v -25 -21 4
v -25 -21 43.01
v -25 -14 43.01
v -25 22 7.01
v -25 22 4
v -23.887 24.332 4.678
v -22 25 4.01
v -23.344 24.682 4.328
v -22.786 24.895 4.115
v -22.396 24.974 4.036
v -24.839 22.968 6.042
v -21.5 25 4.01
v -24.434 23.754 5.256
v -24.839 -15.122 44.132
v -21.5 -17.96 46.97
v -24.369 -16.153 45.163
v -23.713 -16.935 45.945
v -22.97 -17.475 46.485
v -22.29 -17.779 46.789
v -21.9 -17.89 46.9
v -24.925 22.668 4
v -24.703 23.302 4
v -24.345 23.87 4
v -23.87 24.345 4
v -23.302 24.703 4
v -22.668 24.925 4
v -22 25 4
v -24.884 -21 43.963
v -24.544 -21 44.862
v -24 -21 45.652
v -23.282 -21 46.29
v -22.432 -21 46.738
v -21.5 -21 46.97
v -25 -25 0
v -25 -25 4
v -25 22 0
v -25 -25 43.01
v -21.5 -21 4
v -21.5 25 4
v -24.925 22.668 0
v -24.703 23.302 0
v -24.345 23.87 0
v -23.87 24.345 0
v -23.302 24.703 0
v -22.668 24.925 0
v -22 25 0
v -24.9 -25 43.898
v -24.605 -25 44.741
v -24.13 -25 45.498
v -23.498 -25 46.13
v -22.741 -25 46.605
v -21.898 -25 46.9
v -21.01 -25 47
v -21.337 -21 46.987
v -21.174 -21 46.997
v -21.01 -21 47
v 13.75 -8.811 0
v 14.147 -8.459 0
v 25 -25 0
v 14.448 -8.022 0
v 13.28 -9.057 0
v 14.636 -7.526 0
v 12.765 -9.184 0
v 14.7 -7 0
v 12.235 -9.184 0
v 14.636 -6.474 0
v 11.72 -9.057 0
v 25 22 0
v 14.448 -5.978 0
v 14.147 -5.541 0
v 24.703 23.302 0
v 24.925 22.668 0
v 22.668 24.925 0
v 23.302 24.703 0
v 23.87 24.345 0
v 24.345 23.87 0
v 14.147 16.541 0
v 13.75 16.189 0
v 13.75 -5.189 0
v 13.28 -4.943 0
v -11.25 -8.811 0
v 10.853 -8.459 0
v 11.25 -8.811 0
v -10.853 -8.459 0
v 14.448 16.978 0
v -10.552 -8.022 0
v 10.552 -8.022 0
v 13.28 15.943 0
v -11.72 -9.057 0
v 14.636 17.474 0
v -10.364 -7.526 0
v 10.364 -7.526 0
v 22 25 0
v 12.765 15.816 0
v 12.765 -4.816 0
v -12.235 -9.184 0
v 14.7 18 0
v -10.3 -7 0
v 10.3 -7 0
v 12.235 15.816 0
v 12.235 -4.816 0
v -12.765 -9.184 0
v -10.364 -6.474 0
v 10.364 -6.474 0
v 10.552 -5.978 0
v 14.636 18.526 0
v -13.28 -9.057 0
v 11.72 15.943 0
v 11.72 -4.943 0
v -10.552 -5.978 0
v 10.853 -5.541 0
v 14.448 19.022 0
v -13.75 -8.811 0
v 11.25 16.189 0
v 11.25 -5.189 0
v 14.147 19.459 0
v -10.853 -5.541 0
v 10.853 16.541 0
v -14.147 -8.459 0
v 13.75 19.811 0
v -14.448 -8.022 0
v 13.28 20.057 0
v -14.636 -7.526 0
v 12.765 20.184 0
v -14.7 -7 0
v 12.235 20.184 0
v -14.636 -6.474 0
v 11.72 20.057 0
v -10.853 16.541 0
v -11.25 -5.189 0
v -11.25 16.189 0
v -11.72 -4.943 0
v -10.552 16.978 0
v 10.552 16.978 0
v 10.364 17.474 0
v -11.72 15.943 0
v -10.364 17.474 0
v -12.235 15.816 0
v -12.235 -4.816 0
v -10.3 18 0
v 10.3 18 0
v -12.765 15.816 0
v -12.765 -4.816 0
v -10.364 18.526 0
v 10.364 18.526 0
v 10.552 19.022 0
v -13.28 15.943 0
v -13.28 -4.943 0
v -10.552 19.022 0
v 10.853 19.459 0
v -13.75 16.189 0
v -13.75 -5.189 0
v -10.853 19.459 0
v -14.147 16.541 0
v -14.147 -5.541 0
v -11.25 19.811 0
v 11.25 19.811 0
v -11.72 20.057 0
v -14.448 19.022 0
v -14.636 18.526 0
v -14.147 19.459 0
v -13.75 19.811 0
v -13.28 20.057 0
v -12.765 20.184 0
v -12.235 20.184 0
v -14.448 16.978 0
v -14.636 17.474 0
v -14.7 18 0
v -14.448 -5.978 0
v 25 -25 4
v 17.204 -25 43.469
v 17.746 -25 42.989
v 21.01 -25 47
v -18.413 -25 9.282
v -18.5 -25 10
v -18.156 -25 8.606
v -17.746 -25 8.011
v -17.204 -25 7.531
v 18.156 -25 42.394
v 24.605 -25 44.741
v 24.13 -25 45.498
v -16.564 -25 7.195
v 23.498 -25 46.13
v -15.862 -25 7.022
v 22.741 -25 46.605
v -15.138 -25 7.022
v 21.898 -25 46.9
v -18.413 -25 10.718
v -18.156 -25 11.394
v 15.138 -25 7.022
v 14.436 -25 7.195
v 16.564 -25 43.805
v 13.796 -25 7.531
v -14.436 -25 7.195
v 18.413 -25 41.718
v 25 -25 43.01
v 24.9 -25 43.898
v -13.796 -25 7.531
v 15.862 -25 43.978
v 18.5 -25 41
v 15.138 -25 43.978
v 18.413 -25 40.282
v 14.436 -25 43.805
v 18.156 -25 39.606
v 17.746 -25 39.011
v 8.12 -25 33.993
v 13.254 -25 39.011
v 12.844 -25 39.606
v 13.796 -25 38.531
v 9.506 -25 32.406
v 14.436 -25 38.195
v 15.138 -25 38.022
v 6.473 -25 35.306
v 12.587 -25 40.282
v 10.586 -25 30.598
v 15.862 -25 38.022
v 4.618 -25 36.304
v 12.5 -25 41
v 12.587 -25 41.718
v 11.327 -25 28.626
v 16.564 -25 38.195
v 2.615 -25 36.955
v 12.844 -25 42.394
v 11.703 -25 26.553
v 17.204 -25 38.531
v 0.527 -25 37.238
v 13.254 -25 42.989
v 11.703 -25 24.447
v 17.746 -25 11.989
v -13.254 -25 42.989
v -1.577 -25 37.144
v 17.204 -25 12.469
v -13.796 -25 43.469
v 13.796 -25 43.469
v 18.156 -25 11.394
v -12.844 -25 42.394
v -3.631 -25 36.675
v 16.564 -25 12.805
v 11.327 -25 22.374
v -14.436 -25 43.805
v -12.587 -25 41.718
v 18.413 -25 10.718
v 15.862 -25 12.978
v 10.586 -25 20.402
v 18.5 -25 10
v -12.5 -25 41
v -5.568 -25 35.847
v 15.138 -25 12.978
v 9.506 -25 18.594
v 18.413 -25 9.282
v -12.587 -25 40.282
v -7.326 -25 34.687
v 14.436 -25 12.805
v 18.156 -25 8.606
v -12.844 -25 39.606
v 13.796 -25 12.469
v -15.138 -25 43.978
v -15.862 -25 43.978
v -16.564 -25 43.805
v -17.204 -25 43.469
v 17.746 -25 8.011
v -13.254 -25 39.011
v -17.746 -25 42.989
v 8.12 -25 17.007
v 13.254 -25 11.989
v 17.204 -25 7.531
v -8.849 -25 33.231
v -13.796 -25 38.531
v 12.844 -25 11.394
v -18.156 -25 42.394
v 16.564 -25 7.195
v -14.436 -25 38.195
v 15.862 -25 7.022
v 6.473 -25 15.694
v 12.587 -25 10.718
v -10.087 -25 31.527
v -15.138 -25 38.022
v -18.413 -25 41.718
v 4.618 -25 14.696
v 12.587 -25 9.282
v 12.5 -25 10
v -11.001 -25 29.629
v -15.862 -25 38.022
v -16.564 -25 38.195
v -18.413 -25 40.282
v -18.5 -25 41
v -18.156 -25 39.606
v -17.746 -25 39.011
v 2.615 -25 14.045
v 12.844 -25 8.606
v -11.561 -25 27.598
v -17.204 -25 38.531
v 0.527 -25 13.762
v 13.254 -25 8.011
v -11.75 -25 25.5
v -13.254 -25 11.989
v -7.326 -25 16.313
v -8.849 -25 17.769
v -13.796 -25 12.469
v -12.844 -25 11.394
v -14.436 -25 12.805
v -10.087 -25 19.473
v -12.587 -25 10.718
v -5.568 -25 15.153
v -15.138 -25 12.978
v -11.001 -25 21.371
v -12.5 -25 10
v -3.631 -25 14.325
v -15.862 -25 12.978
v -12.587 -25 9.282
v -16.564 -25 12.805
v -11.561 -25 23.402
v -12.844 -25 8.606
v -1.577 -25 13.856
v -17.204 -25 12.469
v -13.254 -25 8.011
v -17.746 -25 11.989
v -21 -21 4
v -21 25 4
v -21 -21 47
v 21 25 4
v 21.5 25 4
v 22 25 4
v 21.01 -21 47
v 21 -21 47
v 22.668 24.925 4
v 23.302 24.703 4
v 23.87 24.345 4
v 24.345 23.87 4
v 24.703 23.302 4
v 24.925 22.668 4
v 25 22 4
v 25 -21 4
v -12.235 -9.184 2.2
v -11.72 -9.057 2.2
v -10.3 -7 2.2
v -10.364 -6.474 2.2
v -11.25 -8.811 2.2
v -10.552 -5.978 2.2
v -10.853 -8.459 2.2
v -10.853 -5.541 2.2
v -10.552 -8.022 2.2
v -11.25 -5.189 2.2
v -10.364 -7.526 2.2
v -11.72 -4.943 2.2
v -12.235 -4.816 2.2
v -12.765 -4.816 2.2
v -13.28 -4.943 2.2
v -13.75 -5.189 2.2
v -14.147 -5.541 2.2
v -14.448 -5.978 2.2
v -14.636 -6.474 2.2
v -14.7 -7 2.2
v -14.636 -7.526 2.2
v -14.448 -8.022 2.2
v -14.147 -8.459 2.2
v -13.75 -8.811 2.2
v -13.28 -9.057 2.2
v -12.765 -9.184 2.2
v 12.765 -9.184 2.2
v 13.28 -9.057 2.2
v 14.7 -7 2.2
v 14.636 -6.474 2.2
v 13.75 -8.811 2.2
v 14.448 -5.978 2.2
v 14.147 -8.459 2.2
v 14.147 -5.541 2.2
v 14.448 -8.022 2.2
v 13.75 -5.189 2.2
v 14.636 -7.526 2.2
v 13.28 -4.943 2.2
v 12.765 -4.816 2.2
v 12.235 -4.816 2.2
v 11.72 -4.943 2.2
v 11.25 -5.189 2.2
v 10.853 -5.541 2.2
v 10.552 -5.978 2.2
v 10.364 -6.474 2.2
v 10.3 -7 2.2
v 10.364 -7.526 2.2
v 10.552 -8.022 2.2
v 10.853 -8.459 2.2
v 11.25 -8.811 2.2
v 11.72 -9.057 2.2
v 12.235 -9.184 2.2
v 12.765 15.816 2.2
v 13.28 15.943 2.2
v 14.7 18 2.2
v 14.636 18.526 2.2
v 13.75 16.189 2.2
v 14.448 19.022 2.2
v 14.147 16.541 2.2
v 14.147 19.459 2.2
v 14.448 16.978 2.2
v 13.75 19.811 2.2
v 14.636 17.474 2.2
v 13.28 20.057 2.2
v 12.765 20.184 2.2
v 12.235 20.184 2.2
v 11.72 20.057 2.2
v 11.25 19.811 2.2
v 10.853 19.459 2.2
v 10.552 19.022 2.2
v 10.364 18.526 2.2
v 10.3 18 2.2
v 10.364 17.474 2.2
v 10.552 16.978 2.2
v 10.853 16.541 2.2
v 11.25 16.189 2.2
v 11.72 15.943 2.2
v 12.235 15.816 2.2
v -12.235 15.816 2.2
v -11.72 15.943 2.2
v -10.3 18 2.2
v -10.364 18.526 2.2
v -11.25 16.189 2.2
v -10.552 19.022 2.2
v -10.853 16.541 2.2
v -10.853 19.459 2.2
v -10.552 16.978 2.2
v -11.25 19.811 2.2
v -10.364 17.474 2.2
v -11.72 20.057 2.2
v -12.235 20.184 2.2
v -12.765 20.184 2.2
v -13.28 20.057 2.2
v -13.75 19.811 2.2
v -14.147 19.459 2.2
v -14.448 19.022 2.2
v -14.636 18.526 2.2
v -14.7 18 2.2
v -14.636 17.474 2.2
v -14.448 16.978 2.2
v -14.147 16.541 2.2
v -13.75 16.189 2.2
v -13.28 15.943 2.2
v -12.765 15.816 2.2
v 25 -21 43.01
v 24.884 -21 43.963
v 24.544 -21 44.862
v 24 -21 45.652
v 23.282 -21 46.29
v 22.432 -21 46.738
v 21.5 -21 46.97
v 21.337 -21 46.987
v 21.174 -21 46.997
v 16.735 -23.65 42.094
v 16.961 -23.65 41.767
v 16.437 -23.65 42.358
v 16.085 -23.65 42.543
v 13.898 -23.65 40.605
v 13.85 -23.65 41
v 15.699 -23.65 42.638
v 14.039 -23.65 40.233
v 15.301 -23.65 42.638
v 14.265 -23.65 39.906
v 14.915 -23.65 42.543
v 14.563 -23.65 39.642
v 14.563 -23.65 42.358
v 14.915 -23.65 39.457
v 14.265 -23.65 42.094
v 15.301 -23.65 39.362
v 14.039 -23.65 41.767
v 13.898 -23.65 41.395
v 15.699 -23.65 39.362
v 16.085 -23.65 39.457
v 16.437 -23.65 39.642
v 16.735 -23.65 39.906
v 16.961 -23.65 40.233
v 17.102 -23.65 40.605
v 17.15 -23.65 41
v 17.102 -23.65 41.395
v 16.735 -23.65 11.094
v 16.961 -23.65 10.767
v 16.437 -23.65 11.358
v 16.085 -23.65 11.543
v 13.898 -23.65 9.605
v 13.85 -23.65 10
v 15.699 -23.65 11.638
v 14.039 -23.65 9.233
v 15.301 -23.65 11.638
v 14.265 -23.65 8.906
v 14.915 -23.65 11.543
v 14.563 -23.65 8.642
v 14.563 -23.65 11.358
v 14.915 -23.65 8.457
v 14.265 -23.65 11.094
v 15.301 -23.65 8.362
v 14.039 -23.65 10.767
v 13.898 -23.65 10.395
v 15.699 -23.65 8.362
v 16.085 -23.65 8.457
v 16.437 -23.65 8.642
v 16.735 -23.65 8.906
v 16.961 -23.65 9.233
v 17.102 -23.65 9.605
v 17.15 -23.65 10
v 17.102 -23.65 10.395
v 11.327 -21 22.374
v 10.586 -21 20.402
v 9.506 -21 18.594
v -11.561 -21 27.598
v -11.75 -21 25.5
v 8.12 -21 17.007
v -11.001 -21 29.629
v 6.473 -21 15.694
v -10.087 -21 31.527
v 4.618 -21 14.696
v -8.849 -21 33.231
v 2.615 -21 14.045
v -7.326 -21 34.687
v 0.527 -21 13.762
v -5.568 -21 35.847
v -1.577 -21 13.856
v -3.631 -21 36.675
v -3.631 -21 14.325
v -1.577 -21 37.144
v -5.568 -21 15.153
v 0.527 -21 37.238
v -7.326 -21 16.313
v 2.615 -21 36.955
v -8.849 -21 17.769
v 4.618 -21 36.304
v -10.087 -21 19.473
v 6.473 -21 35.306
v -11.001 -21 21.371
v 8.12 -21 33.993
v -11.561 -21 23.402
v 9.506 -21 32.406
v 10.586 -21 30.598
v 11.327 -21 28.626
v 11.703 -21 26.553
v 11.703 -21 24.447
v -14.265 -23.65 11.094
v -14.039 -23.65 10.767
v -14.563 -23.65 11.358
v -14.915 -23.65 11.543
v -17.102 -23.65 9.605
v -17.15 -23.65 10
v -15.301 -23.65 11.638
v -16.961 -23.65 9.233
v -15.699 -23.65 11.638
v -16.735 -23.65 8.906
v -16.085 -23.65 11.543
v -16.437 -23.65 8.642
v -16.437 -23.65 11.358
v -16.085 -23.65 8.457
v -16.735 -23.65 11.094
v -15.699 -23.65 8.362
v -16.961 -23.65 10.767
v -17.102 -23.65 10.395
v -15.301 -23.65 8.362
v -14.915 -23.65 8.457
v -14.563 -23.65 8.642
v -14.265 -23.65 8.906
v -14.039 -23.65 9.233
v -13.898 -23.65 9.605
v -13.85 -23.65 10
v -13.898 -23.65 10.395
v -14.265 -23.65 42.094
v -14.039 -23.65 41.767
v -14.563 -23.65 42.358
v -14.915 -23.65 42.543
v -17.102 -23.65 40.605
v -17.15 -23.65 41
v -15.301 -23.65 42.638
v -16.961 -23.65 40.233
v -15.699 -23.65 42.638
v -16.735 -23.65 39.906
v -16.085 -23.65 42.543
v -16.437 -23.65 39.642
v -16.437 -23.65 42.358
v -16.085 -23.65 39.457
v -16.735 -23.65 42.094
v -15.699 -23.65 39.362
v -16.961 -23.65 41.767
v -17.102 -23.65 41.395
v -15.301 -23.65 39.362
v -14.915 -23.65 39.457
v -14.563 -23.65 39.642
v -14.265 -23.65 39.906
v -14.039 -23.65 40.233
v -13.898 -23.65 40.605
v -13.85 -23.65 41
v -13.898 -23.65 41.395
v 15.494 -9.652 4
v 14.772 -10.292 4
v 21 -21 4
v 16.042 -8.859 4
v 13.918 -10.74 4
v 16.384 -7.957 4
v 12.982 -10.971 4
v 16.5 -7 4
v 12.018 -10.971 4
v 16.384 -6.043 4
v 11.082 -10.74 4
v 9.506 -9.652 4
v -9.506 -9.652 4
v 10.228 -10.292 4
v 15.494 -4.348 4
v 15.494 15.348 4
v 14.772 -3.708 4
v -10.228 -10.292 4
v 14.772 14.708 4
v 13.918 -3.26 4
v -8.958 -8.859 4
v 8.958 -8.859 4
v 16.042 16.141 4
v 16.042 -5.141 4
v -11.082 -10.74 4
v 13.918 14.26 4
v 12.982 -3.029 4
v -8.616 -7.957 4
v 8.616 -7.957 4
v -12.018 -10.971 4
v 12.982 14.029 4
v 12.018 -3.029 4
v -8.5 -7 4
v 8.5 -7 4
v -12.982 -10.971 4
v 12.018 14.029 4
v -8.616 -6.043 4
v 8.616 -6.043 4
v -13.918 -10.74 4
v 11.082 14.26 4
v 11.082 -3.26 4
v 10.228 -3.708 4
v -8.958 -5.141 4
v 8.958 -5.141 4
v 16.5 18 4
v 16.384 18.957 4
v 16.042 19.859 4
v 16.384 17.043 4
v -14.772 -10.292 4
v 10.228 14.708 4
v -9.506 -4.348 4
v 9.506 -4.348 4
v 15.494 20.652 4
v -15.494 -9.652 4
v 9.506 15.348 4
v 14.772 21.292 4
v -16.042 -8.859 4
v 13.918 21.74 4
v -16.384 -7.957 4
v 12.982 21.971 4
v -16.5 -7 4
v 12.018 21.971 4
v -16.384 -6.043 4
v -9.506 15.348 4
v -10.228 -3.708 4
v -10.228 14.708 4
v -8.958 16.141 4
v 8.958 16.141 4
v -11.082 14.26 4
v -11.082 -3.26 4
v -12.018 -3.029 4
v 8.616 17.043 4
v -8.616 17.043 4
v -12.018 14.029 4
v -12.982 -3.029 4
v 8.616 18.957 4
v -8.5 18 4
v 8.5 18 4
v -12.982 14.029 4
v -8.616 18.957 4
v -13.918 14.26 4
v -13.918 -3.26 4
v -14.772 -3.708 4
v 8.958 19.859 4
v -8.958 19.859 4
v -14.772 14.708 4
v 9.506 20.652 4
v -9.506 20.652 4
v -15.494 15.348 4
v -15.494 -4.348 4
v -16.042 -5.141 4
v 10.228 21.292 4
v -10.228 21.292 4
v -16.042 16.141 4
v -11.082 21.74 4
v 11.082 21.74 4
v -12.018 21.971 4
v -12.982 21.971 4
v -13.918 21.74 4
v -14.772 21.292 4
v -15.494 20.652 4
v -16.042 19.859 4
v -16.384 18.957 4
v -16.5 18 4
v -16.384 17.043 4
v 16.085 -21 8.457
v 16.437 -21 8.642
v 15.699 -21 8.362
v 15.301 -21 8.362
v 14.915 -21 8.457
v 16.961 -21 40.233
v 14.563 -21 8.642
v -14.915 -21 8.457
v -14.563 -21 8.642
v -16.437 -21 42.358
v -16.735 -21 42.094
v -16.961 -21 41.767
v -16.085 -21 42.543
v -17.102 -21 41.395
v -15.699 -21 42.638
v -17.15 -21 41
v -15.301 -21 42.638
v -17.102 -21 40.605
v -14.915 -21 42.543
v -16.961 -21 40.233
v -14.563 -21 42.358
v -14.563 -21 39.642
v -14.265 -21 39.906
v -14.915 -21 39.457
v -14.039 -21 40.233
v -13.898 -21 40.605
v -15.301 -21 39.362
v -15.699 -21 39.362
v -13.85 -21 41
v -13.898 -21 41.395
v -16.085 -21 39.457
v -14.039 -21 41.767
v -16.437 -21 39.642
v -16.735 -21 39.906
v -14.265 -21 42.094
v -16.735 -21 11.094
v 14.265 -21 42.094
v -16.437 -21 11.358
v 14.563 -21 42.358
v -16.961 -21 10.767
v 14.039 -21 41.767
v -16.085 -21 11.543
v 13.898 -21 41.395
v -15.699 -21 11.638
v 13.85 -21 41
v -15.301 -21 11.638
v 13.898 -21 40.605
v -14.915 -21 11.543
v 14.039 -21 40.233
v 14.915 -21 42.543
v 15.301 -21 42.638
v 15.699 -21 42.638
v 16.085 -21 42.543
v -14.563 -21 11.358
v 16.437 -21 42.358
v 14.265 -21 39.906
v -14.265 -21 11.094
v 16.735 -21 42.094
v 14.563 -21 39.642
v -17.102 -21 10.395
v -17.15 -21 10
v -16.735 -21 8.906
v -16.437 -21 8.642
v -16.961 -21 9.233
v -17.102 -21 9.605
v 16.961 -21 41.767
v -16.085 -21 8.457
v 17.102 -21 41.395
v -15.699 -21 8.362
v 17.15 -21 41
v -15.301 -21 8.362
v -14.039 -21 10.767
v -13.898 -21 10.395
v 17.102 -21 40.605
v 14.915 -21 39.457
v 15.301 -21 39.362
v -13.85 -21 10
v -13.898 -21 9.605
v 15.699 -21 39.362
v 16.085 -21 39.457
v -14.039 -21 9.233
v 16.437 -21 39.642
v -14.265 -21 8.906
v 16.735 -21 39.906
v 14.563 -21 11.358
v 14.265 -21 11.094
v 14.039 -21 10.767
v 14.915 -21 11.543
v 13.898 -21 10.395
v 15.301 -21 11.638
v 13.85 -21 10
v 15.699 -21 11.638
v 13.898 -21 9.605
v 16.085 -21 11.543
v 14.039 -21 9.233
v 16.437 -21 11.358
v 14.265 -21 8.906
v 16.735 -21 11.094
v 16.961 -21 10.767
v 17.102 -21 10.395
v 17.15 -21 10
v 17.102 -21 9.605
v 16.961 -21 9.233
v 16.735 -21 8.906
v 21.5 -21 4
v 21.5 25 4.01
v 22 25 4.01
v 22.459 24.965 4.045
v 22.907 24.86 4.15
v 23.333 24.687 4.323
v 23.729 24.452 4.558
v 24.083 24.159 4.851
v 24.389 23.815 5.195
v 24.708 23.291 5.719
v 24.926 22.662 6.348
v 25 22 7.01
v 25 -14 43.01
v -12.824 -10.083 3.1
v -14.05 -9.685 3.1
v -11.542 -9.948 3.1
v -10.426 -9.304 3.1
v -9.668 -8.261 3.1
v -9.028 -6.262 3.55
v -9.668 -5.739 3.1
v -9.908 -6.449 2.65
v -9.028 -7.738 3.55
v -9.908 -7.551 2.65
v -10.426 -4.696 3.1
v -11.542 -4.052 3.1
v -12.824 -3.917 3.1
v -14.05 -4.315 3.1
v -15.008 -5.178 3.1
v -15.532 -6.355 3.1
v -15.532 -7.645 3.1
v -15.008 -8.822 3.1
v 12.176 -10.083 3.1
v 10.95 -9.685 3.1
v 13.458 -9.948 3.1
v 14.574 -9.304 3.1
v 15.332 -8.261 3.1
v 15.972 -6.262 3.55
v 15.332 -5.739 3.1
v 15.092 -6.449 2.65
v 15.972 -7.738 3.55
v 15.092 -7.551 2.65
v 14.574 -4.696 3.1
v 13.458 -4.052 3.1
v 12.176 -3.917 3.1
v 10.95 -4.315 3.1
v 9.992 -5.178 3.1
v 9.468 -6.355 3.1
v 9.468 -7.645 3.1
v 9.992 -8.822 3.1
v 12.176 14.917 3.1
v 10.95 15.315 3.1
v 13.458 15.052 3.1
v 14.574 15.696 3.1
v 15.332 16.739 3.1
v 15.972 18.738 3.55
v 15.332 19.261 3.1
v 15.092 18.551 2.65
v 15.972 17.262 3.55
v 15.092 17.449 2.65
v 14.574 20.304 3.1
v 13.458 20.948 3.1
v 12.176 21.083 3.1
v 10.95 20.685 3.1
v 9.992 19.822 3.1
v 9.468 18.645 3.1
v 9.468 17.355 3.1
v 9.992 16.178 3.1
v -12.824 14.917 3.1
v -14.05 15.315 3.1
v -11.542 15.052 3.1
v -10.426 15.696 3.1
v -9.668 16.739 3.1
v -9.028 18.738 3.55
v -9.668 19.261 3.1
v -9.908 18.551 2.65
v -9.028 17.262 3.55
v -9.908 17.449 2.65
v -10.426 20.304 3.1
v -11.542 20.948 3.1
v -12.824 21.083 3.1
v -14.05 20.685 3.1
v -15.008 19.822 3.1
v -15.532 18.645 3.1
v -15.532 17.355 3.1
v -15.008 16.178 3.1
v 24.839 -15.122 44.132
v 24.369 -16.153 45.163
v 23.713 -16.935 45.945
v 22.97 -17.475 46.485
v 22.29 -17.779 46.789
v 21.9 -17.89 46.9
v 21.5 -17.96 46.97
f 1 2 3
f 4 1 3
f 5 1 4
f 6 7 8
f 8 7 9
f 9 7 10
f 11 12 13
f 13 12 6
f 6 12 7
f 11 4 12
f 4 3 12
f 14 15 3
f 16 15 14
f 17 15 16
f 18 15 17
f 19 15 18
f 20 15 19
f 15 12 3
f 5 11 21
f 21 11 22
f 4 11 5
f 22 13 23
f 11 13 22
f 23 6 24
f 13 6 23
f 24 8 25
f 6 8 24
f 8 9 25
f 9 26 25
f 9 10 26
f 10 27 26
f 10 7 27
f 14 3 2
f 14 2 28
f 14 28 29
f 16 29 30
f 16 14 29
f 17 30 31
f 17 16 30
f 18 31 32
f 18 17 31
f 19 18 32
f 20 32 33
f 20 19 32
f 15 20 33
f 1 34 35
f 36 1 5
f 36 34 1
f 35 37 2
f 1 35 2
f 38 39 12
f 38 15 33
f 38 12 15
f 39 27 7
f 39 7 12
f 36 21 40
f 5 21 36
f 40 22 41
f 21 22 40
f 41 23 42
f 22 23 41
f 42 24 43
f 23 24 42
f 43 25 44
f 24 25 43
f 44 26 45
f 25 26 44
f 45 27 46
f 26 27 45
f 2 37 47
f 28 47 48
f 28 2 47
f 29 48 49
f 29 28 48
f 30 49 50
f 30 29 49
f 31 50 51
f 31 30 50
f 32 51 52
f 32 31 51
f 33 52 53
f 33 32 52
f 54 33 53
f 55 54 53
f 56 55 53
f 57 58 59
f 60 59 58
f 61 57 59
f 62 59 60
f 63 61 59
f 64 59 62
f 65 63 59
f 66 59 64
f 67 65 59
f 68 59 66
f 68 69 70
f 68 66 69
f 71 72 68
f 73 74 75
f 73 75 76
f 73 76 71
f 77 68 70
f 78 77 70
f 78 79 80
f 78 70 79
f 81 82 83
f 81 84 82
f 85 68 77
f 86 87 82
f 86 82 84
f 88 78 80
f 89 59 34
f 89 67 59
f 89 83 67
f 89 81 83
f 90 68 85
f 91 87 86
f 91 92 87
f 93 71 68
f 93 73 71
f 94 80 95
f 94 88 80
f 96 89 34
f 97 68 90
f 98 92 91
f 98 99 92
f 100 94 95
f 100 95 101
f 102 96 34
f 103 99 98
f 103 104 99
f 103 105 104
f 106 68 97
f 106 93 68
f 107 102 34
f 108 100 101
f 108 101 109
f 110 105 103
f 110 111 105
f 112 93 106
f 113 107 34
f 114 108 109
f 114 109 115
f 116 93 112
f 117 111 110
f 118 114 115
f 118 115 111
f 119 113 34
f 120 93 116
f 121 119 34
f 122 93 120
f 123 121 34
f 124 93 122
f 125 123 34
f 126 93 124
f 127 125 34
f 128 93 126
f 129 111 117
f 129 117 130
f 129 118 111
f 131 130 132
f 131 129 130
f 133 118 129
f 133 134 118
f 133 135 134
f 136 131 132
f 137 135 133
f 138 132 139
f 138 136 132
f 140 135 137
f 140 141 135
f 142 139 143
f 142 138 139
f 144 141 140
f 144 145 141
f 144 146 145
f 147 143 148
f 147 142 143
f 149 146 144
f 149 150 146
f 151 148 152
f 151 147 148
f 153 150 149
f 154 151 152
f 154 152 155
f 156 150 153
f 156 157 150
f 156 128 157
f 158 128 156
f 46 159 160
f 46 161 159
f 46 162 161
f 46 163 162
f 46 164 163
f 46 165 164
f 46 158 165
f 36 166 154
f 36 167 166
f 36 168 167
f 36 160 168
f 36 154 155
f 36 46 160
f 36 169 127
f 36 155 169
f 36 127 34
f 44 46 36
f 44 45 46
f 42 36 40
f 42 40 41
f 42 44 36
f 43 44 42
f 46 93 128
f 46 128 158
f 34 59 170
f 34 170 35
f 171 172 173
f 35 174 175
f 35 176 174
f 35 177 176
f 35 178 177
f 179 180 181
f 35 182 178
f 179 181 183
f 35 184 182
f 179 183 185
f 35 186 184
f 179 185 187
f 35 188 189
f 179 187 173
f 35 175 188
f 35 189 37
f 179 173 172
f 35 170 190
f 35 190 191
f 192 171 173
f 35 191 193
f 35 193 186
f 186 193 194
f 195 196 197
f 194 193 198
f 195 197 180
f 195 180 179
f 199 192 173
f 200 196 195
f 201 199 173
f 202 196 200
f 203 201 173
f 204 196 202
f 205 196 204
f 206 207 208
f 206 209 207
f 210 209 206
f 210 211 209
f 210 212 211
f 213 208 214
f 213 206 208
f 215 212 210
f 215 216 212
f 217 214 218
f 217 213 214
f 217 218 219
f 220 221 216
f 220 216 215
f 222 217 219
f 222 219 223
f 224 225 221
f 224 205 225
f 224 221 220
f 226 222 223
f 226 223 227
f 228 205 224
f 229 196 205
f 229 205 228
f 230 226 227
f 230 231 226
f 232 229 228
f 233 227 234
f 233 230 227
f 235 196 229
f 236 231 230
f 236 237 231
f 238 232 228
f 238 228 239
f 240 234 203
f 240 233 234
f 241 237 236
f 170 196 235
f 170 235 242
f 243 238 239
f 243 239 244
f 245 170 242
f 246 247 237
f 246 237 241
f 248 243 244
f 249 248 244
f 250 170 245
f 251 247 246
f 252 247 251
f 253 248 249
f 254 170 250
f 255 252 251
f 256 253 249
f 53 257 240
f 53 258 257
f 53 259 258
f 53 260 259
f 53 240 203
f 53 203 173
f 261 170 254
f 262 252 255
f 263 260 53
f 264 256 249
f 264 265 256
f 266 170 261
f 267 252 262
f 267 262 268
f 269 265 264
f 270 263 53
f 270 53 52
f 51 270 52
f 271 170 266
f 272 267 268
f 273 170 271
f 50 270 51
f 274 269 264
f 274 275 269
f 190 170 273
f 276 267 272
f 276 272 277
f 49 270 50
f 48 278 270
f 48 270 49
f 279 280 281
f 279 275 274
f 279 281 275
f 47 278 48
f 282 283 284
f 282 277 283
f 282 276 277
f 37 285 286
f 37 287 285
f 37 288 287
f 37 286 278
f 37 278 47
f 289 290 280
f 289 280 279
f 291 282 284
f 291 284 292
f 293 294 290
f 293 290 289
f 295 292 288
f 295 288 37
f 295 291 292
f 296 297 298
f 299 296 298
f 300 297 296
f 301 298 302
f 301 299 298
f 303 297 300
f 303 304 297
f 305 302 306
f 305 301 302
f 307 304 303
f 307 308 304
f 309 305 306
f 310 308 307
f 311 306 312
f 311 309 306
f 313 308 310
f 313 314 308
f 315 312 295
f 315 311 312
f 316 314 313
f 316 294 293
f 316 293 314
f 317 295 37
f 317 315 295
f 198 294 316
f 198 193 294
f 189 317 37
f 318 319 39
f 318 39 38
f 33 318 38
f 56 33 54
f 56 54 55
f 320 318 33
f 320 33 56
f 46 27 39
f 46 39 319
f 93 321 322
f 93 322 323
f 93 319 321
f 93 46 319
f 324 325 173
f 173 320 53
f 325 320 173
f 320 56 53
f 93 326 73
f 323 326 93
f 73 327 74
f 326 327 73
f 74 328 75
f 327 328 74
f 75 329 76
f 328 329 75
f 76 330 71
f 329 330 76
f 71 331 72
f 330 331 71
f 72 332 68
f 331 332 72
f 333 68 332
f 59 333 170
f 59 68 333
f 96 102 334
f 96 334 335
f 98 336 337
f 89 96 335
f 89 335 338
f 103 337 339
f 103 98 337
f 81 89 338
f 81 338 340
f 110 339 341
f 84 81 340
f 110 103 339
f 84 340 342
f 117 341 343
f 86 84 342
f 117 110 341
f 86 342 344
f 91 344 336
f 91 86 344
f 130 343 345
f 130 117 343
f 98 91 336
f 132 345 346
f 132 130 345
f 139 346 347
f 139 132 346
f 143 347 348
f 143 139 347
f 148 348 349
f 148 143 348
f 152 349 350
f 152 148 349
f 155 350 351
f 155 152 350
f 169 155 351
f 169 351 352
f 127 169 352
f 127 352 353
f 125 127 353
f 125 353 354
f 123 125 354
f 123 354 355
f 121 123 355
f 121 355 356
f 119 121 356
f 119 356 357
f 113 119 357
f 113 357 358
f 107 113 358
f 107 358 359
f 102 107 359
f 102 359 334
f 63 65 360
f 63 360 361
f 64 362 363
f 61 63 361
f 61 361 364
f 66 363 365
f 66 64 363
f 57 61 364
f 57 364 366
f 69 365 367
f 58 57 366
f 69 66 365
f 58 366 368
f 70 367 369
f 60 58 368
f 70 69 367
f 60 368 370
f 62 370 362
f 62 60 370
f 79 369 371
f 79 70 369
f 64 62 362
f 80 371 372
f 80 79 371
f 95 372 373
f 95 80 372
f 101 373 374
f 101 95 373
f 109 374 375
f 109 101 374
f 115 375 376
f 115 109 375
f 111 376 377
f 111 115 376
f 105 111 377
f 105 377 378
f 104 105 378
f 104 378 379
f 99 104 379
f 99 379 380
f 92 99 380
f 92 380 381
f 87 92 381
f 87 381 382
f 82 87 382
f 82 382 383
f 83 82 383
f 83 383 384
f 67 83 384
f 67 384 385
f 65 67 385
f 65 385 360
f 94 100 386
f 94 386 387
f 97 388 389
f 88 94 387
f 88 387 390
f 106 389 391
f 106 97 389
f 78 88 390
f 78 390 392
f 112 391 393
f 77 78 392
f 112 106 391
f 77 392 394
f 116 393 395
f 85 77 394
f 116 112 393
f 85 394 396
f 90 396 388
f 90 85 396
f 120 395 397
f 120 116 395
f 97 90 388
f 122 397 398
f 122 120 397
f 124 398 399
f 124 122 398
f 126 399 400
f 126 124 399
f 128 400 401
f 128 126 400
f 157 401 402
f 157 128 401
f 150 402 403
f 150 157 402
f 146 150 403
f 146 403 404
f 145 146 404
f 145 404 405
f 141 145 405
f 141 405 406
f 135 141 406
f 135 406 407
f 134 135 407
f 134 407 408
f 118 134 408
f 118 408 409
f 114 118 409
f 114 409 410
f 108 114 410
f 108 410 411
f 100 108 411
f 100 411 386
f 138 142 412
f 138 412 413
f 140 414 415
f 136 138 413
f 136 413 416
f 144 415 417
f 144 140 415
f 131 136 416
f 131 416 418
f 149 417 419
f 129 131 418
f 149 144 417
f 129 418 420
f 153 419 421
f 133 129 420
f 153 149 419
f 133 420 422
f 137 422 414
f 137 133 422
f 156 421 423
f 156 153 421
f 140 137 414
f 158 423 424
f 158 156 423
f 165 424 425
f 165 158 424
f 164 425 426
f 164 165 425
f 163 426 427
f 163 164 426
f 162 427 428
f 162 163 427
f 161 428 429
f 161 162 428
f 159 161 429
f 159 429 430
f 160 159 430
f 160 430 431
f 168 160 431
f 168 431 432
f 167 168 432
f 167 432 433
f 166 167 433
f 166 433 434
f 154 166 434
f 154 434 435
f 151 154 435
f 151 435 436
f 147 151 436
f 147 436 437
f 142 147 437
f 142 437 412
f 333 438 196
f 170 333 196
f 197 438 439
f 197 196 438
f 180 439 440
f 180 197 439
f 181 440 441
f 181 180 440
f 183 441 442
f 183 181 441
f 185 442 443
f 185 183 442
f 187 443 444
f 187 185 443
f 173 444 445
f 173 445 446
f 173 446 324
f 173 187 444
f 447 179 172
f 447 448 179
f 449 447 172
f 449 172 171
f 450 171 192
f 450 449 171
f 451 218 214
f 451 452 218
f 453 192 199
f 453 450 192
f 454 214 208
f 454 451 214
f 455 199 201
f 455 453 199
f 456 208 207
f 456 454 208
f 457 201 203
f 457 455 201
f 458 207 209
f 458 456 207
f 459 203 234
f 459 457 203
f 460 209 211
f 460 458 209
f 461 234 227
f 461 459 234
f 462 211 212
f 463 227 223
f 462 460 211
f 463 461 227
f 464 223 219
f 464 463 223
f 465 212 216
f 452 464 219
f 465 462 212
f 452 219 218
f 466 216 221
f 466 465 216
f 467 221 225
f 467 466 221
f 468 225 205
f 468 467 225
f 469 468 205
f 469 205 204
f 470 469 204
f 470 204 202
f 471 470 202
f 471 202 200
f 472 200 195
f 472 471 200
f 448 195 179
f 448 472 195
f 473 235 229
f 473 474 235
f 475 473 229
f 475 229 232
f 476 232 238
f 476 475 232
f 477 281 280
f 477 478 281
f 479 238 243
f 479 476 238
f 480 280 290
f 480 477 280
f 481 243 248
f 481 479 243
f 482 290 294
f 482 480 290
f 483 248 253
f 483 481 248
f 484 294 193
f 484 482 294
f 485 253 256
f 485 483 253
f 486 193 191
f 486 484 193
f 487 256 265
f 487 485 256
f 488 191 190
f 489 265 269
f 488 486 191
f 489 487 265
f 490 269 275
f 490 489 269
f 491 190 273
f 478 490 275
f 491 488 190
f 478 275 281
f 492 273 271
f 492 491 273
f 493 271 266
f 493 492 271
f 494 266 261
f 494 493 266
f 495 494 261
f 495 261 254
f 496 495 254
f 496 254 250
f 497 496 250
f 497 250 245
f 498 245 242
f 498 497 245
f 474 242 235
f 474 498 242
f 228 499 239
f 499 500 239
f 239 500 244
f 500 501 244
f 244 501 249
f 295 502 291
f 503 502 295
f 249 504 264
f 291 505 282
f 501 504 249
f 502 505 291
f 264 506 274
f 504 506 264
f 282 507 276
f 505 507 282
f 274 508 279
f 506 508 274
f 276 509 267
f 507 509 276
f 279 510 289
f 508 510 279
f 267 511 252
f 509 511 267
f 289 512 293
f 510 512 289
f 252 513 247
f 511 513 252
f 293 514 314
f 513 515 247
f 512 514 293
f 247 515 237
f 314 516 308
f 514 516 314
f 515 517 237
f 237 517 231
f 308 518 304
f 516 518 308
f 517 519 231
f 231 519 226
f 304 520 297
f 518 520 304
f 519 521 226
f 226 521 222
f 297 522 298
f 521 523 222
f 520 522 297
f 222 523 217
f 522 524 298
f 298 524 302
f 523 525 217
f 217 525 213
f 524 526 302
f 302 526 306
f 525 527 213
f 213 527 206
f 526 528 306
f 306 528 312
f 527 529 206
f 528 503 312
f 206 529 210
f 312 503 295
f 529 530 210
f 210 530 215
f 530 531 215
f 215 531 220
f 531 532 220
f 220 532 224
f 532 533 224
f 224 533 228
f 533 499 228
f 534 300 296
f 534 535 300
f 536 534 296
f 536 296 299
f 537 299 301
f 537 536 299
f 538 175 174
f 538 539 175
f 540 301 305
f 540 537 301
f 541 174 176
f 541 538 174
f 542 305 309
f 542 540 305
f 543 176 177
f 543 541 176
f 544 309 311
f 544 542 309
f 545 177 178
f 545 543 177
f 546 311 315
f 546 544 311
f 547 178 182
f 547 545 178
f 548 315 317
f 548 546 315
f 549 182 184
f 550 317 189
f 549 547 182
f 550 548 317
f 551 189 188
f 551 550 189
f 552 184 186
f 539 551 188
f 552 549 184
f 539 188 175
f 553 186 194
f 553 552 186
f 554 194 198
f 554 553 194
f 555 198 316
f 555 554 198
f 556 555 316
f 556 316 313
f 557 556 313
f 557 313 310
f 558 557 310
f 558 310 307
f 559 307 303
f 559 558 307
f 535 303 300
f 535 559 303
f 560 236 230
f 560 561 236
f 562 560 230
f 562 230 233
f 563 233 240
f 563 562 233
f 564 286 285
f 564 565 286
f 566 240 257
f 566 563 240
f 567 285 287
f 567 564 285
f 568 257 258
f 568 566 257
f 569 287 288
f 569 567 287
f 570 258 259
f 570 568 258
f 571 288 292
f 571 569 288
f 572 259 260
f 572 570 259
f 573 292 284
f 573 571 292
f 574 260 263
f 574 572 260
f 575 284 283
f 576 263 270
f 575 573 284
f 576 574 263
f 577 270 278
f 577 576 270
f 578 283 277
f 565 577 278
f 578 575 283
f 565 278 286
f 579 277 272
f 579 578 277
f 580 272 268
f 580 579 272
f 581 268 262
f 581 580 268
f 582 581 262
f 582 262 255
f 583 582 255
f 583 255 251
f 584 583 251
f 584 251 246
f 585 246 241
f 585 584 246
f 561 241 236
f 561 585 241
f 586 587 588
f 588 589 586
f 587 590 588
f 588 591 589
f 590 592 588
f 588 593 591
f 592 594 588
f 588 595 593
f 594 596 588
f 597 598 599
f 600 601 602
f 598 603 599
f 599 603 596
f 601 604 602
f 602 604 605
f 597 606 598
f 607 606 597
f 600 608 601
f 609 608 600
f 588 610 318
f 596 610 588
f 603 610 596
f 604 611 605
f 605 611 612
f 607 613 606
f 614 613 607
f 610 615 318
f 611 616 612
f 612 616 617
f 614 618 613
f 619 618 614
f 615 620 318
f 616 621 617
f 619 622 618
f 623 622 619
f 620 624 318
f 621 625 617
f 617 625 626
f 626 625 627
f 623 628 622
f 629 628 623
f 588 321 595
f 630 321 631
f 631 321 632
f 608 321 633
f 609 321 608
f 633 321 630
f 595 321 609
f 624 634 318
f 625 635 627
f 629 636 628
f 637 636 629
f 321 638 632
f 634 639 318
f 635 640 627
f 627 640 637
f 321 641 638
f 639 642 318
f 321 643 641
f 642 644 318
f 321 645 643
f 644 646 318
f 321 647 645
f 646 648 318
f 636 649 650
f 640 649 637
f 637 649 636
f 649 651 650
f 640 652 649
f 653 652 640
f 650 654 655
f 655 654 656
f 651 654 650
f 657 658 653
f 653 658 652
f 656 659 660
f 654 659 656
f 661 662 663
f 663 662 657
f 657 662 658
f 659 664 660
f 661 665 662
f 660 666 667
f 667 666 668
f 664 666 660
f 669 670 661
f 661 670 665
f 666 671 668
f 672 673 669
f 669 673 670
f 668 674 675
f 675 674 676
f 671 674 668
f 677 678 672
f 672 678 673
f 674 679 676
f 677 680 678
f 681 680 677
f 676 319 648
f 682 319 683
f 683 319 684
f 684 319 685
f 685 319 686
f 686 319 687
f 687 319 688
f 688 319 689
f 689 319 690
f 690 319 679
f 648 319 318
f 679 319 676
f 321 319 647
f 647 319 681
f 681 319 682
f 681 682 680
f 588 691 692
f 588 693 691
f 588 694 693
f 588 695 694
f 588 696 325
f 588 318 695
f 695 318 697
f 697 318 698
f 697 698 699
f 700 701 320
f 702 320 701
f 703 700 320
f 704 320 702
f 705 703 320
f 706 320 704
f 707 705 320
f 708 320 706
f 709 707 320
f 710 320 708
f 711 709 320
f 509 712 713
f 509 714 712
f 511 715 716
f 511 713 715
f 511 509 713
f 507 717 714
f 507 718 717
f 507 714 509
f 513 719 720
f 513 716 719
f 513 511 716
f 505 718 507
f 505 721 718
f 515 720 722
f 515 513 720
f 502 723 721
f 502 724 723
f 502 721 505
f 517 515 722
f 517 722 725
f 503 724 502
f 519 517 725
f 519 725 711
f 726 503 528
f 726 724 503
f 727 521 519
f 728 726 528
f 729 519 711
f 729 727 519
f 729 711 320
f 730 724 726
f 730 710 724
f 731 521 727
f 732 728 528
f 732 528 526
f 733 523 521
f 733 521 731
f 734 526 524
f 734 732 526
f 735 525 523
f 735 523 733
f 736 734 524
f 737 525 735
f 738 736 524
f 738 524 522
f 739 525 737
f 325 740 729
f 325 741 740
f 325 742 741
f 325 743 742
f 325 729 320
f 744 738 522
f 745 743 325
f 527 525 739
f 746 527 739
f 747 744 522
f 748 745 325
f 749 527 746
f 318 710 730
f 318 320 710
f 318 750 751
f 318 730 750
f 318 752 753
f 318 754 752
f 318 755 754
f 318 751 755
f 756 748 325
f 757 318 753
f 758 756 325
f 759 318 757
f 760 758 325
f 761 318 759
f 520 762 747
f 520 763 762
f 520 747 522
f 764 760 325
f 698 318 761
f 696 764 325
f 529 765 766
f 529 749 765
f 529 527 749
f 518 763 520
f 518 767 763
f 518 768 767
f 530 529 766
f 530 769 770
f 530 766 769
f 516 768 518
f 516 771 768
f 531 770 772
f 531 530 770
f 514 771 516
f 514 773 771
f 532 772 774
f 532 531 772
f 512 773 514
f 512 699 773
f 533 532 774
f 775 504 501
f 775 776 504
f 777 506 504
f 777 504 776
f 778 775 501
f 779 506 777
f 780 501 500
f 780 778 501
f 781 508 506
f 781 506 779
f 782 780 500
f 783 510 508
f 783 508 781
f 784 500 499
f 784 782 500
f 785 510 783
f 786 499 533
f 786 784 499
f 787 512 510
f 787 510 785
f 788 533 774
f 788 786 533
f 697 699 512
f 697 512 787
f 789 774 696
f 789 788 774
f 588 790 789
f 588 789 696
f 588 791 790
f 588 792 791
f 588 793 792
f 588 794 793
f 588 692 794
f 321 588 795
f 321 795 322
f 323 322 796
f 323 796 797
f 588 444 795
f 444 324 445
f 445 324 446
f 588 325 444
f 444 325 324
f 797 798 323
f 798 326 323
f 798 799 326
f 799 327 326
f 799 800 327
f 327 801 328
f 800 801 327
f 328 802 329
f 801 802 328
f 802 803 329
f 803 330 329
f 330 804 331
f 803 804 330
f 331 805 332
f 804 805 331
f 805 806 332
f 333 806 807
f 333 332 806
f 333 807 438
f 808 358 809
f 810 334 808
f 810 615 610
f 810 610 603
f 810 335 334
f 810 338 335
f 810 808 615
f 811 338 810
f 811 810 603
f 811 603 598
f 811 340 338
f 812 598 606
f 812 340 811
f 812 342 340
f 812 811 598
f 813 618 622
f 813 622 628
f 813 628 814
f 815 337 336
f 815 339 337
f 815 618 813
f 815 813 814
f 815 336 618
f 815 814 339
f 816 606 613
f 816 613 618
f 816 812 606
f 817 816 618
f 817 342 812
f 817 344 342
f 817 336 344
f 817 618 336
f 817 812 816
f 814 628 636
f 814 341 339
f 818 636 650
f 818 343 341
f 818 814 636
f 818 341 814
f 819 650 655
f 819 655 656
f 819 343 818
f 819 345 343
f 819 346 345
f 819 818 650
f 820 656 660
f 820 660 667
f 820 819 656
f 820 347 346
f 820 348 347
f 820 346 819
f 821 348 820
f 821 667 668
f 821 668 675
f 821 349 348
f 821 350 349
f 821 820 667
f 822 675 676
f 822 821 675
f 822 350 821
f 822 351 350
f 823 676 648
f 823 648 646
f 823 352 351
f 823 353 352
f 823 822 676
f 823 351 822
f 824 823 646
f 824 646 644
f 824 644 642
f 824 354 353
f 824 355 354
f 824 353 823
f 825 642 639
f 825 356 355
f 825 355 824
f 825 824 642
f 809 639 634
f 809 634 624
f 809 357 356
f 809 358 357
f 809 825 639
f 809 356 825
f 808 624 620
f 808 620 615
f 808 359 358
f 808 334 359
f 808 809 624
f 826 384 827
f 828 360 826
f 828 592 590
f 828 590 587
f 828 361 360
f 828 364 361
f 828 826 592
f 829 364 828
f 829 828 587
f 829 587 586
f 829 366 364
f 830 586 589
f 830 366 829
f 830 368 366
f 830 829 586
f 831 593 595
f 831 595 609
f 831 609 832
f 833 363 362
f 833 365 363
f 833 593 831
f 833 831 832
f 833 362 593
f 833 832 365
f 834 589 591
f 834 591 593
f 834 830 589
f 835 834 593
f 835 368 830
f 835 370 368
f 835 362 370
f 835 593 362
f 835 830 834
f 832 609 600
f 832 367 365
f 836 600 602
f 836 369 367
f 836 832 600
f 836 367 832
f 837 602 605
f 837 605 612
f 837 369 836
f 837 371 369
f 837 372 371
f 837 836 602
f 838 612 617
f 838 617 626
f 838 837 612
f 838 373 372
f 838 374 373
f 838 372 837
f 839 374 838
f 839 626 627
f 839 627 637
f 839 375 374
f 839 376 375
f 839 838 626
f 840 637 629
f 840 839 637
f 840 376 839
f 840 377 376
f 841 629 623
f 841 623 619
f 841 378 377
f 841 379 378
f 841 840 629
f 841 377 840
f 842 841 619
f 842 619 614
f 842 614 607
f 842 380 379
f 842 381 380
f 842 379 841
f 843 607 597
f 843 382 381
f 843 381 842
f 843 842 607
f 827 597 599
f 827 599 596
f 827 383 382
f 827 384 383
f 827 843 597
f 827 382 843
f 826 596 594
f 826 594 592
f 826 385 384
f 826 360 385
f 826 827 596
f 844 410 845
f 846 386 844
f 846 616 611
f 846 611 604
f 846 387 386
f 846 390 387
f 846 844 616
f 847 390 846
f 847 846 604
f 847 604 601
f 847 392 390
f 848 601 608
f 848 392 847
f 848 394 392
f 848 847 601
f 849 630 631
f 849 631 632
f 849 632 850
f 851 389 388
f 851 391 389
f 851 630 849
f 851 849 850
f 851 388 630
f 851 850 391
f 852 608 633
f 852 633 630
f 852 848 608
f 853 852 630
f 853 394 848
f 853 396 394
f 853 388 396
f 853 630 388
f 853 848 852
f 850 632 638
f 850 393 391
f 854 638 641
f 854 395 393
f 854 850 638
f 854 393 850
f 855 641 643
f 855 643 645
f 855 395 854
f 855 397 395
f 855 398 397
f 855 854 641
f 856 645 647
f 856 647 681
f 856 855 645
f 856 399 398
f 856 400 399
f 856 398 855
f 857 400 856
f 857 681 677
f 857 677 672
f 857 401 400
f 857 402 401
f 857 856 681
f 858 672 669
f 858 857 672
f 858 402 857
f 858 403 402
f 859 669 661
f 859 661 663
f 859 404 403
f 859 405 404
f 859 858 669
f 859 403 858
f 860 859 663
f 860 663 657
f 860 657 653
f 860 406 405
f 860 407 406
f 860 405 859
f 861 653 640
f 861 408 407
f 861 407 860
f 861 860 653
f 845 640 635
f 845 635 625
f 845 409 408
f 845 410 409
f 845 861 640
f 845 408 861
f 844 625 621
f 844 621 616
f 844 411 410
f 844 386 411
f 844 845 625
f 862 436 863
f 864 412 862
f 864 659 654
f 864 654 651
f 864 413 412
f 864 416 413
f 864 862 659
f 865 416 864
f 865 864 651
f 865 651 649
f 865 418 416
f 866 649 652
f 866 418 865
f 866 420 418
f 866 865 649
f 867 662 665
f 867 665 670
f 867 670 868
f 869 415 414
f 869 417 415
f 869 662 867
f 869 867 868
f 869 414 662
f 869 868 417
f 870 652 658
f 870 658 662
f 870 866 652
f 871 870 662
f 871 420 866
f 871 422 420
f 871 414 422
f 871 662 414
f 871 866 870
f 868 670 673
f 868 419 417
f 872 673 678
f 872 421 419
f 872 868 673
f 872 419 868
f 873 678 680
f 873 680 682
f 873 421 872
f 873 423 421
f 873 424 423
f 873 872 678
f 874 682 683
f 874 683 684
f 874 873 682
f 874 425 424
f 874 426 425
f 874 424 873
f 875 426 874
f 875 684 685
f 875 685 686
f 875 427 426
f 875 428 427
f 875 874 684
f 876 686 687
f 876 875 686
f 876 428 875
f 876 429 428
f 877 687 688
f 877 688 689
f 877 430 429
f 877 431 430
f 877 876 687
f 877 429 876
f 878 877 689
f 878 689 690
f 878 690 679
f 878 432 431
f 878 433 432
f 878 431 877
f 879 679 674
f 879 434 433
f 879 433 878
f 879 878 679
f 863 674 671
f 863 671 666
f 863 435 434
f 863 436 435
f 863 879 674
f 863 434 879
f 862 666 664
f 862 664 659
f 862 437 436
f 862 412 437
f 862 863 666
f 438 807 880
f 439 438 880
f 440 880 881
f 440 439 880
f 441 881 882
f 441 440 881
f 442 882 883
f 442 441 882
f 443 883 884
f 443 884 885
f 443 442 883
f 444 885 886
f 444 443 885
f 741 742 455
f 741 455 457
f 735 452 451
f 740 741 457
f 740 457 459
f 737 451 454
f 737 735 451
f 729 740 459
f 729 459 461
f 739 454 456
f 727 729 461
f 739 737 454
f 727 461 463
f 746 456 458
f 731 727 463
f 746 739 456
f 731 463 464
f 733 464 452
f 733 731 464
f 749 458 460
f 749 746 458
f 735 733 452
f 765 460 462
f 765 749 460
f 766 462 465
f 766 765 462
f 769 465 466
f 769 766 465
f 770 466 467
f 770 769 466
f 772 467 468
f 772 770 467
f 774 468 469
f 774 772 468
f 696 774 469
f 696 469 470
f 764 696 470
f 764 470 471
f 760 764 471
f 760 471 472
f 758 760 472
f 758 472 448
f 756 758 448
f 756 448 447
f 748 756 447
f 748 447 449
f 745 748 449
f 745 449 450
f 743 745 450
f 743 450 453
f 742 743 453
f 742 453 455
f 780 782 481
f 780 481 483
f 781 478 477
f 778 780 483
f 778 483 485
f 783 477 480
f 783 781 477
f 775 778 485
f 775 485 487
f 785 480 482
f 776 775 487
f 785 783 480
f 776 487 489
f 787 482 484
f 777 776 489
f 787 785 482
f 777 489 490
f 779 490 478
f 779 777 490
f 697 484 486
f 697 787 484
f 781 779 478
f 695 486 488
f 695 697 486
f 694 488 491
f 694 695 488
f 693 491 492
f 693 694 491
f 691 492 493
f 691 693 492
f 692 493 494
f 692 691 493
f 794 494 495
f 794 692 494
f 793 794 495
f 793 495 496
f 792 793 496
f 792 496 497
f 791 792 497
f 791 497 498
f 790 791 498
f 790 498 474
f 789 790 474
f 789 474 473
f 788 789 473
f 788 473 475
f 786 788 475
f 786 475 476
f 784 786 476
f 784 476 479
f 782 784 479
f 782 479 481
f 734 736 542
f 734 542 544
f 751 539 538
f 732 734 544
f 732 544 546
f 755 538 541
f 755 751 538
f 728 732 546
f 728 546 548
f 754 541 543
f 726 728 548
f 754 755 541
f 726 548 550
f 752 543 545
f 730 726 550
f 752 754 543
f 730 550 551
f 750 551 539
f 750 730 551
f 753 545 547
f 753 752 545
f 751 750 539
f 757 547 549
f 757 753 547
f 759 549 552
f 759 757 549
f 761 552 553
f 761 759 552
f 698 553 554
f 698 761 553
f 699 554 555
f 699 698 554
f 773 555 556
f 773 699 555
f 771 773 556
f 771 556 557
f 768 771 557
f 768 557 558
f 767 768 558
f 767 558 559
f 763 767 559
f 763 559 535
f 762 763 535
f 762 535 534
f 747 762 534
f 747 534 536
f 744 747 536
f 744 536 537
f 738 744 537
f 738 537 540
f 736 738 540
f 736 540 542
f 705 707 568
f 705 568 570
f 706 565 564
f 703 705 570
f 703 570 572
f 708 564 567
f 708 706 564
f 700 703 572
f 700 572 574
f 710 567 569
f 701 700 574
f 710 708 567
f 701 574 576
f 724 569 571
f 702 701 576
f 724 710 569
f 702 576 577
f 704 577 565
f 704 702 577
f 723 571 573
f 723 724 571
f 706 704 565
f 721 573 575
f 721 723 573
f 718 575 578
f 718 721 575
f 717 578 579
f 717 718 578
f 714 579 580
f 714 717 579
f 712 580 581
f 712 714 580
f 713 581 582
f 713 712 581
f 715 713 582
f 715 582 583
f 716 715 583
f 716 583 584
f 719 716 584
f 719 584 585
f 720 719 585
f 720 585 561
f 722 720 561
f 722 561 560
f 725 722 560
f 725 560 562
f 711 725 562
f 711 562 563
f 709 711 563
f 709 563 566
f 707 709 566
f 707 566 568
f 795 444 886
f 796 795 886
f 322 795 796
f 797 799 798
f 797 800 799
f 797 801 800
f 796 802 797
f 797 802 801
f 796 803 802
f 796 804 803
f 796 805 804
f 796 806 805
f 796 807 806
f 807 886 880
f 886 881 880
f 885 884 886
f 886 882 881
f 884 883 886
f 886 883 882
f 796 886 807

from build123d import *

# Parameters (mm, degrees)
SKETCH_W            = 50
SKETCH_H            = 50
PAD_DEPTH           = 4
SKETCH001_W         = 50
SKETCH001_H         = 4
PAD001_DEPTH        = 43
SKETCH002_R         = 11.75
POCKET_DEPTH        = 4.001
HOLE_D              = 4.4
HOLE_CSINK_D        = 8
HOLE_CSINK_ANGLE    = 90
HOLE001_D           = 3.3
HOLE001_DEPTH       = 24.00858
HOLE001_CSINK_D     = 6
HOLE001_CSINK_ANGLE = 90
HOLE001_TIPS_R      = 1.65
SKETCH005_W         = 4
SKETCH005_H         = 46
PAD002_DEPTH        = 43
CHAMFER_SIZE        = 42.99
FILLET_R            = 3.99
FILLET001_R         = 3
POCKET001_DEPTH     = 0.5
POCKET002_DEPTH     = 0.5


with BuildPart() as part:
    # Sketch → Pad (new body)
    with BuildSketch(Plane.XY):
        Rectangle(SKETCH_W, SKETCH_H)
    extrude(amount=PAD_DEPTH)

    # Sketch001 (on Face6 of Pad) → Pad001 (join)
    with BuildSketch(Plane.XY.offset(4)):
        with Locations((0, -23)):
            Rectangle(SKETCH001_W, SKETCH001_H)
    extrude(amount=PAD001_DEPTH)

    # Sketch002 (on Face9 of Pad001) → Pocket (cut, through all)
    with BuildSketch(Plane(origin=(0, -21, 0), x_dir=(-1, 0, 0), z_dir=(0, 1, 0))):
        with Locations((0, 25.5)):
            Circle(SKETCH002_R)
    extrude(amount=-POCKET_DEPTH, mode=Mode.SUBTRACT)

    # Hole (through all)
    with Locations(Plane.XY.offset(4)):
        with Locations((12.5, -7), (-12.5, -7), (-12.5, 18), (12.5, 18)):
            CounterSinkHole(HOLE_D / 2, HOLE_CSINK_D / 2, counter_sink_angle=HOLE_CSINK_ANGLE)

    # Hole001
    with Locations(Plane.XZ.offset(25)):
        with Locations((-15.5, 41), (15.5, 41), (15.5, 10), (-15.5, 10)):
            CounterSinkHole(HOLE001_D / 2, HOLE001_CSINK_D / 2, depth=HOLE001_DEPTH, counter_sink_angle=HOLE001_CSINK_ANGLE)

    # Hole001 tips → Hole001 tip 1 section 0
    with BuildSketch(Plane.XZ.offset(0.99142), mode=Mode.PRIVATE) as hole001_tip_1_s0:
        with Locations((-15.5, 41)):
            Circle(HOLE001_TIPS_R)
    loft([hole001_tip_1_s0.sketch, Vertex(-15.5, 0, 41)], mode=Mode.SUBTRACT)

    # Hole001 tips → Hole001 tip 2 section 0
    with BuildSketch(Plane.XZ.offset(0.99142), mode=Mode.PRIVATE) as hole001_tip_2_s0:
        with Locations((15.5, 41)):
            Circle(HOLE001_TIPS_R)
    loft([hole001_tip_2_s0.sketch, Vertex(15.5, 0, 41)], mode=Mode.SUBTRACT)

    # Hole001 tips → Hole001 tip 3 section 0
    with BuildSketch(Plane.XZ.offset(0.99142), mode=Mode.PRIVATE) as hole001_tip_3_s0:
        with Locations((15.5, 10)):
            Circle(HOLE001_TIPS_R)
    loft([hole001_tip_3_s0.sketch, Vertex(15.5, 0, 10)], mode=Mode.SUBTRACT)

    # Hole001 tips → Hole001 tip 4 section 0
    with BuildSketch(Plane.XZ.offset(0.99142), mode=Mode.PRIVATE) as hole001_tip_4_s0:
        with Locations((-15.5, 10)):
            Circle(HOLE001_TIPS_R)
    loft([hole001_tip_4_s0.sketch, Vertex(-15.5, 0, 10)], mode=Mode.SUBTRACT)

    # Sketch005 (on Face5 of Hole001) → Pad002 (join)
    with BuildSketch(Plane.XY.offset(4)):
        with Locations((23, 2)):
            Rectangle(SKETCH005_W, SKETCH005_H)
        with Locations((-23, 2)):
            Rectangle(SKETCH005_W, SKETCH005_H)
    extrude(amount=PAD002_DEPTH)

    # Chamfer
    chamfer_edges = [part.edges().sort_by_distance(p)[0] for p in [
        (23, 25, 47),
        (-23, 25, 47),
    ]]
    chamfer(chamfer_edges, length=CHAMFER_SIZE)

    # Fillet
    fillet_edges = [part.edges().sort_by_distance(p)[0] for p in [
        (25, -23, 47),
        (-25, -23, 47),
    ]]
    fillet(fillet_edges, radius=FILLET_R)

    # Fillet001
    fillet001_edges = [part.edges().sort_by_distance(p)[0] for p in [
        (25, 25, 2),
        (-25, 25, 2),
    ]]
    fillet(fillet001_edges, radius=FILLET001_R)

    # Fillet001 Face9 → Pocket001 (cut)
    with BuildSketch(Plane(origin=(-21, -5.601727, 19.213451), x_dir=(0, -1, 0), z_dir=(1, 0, 0))):
        Polygon((-30.601727, 15.213451), (-30.601727, 15.203451), (12.388273, -27.786549), (15.398273, -27.786549), (15.398273, 15.213451), align=None)
    extrude(amount=-POCKET001_DEPTH, mode=Mode.SUBTRACT)

    # Pocket001 Face46 → Pocket002 (cut)
    with BuildSketch(Plane(origin=(21, -5.601727, 19.213451), x_dir=(0, 1, 0), z_dir=(-1, 0, 0))):
        Polygon((30.601727, 15.203451), (30.601727, 15.213451), (-15.398273, 15.213451), (-15.398273, -27.786549), (-12.388273, -27.786549), align=None)
    extrude(amount=-POCKET002_DEPTH, mode=Mode.SUBTRACT)


solid = part.part
